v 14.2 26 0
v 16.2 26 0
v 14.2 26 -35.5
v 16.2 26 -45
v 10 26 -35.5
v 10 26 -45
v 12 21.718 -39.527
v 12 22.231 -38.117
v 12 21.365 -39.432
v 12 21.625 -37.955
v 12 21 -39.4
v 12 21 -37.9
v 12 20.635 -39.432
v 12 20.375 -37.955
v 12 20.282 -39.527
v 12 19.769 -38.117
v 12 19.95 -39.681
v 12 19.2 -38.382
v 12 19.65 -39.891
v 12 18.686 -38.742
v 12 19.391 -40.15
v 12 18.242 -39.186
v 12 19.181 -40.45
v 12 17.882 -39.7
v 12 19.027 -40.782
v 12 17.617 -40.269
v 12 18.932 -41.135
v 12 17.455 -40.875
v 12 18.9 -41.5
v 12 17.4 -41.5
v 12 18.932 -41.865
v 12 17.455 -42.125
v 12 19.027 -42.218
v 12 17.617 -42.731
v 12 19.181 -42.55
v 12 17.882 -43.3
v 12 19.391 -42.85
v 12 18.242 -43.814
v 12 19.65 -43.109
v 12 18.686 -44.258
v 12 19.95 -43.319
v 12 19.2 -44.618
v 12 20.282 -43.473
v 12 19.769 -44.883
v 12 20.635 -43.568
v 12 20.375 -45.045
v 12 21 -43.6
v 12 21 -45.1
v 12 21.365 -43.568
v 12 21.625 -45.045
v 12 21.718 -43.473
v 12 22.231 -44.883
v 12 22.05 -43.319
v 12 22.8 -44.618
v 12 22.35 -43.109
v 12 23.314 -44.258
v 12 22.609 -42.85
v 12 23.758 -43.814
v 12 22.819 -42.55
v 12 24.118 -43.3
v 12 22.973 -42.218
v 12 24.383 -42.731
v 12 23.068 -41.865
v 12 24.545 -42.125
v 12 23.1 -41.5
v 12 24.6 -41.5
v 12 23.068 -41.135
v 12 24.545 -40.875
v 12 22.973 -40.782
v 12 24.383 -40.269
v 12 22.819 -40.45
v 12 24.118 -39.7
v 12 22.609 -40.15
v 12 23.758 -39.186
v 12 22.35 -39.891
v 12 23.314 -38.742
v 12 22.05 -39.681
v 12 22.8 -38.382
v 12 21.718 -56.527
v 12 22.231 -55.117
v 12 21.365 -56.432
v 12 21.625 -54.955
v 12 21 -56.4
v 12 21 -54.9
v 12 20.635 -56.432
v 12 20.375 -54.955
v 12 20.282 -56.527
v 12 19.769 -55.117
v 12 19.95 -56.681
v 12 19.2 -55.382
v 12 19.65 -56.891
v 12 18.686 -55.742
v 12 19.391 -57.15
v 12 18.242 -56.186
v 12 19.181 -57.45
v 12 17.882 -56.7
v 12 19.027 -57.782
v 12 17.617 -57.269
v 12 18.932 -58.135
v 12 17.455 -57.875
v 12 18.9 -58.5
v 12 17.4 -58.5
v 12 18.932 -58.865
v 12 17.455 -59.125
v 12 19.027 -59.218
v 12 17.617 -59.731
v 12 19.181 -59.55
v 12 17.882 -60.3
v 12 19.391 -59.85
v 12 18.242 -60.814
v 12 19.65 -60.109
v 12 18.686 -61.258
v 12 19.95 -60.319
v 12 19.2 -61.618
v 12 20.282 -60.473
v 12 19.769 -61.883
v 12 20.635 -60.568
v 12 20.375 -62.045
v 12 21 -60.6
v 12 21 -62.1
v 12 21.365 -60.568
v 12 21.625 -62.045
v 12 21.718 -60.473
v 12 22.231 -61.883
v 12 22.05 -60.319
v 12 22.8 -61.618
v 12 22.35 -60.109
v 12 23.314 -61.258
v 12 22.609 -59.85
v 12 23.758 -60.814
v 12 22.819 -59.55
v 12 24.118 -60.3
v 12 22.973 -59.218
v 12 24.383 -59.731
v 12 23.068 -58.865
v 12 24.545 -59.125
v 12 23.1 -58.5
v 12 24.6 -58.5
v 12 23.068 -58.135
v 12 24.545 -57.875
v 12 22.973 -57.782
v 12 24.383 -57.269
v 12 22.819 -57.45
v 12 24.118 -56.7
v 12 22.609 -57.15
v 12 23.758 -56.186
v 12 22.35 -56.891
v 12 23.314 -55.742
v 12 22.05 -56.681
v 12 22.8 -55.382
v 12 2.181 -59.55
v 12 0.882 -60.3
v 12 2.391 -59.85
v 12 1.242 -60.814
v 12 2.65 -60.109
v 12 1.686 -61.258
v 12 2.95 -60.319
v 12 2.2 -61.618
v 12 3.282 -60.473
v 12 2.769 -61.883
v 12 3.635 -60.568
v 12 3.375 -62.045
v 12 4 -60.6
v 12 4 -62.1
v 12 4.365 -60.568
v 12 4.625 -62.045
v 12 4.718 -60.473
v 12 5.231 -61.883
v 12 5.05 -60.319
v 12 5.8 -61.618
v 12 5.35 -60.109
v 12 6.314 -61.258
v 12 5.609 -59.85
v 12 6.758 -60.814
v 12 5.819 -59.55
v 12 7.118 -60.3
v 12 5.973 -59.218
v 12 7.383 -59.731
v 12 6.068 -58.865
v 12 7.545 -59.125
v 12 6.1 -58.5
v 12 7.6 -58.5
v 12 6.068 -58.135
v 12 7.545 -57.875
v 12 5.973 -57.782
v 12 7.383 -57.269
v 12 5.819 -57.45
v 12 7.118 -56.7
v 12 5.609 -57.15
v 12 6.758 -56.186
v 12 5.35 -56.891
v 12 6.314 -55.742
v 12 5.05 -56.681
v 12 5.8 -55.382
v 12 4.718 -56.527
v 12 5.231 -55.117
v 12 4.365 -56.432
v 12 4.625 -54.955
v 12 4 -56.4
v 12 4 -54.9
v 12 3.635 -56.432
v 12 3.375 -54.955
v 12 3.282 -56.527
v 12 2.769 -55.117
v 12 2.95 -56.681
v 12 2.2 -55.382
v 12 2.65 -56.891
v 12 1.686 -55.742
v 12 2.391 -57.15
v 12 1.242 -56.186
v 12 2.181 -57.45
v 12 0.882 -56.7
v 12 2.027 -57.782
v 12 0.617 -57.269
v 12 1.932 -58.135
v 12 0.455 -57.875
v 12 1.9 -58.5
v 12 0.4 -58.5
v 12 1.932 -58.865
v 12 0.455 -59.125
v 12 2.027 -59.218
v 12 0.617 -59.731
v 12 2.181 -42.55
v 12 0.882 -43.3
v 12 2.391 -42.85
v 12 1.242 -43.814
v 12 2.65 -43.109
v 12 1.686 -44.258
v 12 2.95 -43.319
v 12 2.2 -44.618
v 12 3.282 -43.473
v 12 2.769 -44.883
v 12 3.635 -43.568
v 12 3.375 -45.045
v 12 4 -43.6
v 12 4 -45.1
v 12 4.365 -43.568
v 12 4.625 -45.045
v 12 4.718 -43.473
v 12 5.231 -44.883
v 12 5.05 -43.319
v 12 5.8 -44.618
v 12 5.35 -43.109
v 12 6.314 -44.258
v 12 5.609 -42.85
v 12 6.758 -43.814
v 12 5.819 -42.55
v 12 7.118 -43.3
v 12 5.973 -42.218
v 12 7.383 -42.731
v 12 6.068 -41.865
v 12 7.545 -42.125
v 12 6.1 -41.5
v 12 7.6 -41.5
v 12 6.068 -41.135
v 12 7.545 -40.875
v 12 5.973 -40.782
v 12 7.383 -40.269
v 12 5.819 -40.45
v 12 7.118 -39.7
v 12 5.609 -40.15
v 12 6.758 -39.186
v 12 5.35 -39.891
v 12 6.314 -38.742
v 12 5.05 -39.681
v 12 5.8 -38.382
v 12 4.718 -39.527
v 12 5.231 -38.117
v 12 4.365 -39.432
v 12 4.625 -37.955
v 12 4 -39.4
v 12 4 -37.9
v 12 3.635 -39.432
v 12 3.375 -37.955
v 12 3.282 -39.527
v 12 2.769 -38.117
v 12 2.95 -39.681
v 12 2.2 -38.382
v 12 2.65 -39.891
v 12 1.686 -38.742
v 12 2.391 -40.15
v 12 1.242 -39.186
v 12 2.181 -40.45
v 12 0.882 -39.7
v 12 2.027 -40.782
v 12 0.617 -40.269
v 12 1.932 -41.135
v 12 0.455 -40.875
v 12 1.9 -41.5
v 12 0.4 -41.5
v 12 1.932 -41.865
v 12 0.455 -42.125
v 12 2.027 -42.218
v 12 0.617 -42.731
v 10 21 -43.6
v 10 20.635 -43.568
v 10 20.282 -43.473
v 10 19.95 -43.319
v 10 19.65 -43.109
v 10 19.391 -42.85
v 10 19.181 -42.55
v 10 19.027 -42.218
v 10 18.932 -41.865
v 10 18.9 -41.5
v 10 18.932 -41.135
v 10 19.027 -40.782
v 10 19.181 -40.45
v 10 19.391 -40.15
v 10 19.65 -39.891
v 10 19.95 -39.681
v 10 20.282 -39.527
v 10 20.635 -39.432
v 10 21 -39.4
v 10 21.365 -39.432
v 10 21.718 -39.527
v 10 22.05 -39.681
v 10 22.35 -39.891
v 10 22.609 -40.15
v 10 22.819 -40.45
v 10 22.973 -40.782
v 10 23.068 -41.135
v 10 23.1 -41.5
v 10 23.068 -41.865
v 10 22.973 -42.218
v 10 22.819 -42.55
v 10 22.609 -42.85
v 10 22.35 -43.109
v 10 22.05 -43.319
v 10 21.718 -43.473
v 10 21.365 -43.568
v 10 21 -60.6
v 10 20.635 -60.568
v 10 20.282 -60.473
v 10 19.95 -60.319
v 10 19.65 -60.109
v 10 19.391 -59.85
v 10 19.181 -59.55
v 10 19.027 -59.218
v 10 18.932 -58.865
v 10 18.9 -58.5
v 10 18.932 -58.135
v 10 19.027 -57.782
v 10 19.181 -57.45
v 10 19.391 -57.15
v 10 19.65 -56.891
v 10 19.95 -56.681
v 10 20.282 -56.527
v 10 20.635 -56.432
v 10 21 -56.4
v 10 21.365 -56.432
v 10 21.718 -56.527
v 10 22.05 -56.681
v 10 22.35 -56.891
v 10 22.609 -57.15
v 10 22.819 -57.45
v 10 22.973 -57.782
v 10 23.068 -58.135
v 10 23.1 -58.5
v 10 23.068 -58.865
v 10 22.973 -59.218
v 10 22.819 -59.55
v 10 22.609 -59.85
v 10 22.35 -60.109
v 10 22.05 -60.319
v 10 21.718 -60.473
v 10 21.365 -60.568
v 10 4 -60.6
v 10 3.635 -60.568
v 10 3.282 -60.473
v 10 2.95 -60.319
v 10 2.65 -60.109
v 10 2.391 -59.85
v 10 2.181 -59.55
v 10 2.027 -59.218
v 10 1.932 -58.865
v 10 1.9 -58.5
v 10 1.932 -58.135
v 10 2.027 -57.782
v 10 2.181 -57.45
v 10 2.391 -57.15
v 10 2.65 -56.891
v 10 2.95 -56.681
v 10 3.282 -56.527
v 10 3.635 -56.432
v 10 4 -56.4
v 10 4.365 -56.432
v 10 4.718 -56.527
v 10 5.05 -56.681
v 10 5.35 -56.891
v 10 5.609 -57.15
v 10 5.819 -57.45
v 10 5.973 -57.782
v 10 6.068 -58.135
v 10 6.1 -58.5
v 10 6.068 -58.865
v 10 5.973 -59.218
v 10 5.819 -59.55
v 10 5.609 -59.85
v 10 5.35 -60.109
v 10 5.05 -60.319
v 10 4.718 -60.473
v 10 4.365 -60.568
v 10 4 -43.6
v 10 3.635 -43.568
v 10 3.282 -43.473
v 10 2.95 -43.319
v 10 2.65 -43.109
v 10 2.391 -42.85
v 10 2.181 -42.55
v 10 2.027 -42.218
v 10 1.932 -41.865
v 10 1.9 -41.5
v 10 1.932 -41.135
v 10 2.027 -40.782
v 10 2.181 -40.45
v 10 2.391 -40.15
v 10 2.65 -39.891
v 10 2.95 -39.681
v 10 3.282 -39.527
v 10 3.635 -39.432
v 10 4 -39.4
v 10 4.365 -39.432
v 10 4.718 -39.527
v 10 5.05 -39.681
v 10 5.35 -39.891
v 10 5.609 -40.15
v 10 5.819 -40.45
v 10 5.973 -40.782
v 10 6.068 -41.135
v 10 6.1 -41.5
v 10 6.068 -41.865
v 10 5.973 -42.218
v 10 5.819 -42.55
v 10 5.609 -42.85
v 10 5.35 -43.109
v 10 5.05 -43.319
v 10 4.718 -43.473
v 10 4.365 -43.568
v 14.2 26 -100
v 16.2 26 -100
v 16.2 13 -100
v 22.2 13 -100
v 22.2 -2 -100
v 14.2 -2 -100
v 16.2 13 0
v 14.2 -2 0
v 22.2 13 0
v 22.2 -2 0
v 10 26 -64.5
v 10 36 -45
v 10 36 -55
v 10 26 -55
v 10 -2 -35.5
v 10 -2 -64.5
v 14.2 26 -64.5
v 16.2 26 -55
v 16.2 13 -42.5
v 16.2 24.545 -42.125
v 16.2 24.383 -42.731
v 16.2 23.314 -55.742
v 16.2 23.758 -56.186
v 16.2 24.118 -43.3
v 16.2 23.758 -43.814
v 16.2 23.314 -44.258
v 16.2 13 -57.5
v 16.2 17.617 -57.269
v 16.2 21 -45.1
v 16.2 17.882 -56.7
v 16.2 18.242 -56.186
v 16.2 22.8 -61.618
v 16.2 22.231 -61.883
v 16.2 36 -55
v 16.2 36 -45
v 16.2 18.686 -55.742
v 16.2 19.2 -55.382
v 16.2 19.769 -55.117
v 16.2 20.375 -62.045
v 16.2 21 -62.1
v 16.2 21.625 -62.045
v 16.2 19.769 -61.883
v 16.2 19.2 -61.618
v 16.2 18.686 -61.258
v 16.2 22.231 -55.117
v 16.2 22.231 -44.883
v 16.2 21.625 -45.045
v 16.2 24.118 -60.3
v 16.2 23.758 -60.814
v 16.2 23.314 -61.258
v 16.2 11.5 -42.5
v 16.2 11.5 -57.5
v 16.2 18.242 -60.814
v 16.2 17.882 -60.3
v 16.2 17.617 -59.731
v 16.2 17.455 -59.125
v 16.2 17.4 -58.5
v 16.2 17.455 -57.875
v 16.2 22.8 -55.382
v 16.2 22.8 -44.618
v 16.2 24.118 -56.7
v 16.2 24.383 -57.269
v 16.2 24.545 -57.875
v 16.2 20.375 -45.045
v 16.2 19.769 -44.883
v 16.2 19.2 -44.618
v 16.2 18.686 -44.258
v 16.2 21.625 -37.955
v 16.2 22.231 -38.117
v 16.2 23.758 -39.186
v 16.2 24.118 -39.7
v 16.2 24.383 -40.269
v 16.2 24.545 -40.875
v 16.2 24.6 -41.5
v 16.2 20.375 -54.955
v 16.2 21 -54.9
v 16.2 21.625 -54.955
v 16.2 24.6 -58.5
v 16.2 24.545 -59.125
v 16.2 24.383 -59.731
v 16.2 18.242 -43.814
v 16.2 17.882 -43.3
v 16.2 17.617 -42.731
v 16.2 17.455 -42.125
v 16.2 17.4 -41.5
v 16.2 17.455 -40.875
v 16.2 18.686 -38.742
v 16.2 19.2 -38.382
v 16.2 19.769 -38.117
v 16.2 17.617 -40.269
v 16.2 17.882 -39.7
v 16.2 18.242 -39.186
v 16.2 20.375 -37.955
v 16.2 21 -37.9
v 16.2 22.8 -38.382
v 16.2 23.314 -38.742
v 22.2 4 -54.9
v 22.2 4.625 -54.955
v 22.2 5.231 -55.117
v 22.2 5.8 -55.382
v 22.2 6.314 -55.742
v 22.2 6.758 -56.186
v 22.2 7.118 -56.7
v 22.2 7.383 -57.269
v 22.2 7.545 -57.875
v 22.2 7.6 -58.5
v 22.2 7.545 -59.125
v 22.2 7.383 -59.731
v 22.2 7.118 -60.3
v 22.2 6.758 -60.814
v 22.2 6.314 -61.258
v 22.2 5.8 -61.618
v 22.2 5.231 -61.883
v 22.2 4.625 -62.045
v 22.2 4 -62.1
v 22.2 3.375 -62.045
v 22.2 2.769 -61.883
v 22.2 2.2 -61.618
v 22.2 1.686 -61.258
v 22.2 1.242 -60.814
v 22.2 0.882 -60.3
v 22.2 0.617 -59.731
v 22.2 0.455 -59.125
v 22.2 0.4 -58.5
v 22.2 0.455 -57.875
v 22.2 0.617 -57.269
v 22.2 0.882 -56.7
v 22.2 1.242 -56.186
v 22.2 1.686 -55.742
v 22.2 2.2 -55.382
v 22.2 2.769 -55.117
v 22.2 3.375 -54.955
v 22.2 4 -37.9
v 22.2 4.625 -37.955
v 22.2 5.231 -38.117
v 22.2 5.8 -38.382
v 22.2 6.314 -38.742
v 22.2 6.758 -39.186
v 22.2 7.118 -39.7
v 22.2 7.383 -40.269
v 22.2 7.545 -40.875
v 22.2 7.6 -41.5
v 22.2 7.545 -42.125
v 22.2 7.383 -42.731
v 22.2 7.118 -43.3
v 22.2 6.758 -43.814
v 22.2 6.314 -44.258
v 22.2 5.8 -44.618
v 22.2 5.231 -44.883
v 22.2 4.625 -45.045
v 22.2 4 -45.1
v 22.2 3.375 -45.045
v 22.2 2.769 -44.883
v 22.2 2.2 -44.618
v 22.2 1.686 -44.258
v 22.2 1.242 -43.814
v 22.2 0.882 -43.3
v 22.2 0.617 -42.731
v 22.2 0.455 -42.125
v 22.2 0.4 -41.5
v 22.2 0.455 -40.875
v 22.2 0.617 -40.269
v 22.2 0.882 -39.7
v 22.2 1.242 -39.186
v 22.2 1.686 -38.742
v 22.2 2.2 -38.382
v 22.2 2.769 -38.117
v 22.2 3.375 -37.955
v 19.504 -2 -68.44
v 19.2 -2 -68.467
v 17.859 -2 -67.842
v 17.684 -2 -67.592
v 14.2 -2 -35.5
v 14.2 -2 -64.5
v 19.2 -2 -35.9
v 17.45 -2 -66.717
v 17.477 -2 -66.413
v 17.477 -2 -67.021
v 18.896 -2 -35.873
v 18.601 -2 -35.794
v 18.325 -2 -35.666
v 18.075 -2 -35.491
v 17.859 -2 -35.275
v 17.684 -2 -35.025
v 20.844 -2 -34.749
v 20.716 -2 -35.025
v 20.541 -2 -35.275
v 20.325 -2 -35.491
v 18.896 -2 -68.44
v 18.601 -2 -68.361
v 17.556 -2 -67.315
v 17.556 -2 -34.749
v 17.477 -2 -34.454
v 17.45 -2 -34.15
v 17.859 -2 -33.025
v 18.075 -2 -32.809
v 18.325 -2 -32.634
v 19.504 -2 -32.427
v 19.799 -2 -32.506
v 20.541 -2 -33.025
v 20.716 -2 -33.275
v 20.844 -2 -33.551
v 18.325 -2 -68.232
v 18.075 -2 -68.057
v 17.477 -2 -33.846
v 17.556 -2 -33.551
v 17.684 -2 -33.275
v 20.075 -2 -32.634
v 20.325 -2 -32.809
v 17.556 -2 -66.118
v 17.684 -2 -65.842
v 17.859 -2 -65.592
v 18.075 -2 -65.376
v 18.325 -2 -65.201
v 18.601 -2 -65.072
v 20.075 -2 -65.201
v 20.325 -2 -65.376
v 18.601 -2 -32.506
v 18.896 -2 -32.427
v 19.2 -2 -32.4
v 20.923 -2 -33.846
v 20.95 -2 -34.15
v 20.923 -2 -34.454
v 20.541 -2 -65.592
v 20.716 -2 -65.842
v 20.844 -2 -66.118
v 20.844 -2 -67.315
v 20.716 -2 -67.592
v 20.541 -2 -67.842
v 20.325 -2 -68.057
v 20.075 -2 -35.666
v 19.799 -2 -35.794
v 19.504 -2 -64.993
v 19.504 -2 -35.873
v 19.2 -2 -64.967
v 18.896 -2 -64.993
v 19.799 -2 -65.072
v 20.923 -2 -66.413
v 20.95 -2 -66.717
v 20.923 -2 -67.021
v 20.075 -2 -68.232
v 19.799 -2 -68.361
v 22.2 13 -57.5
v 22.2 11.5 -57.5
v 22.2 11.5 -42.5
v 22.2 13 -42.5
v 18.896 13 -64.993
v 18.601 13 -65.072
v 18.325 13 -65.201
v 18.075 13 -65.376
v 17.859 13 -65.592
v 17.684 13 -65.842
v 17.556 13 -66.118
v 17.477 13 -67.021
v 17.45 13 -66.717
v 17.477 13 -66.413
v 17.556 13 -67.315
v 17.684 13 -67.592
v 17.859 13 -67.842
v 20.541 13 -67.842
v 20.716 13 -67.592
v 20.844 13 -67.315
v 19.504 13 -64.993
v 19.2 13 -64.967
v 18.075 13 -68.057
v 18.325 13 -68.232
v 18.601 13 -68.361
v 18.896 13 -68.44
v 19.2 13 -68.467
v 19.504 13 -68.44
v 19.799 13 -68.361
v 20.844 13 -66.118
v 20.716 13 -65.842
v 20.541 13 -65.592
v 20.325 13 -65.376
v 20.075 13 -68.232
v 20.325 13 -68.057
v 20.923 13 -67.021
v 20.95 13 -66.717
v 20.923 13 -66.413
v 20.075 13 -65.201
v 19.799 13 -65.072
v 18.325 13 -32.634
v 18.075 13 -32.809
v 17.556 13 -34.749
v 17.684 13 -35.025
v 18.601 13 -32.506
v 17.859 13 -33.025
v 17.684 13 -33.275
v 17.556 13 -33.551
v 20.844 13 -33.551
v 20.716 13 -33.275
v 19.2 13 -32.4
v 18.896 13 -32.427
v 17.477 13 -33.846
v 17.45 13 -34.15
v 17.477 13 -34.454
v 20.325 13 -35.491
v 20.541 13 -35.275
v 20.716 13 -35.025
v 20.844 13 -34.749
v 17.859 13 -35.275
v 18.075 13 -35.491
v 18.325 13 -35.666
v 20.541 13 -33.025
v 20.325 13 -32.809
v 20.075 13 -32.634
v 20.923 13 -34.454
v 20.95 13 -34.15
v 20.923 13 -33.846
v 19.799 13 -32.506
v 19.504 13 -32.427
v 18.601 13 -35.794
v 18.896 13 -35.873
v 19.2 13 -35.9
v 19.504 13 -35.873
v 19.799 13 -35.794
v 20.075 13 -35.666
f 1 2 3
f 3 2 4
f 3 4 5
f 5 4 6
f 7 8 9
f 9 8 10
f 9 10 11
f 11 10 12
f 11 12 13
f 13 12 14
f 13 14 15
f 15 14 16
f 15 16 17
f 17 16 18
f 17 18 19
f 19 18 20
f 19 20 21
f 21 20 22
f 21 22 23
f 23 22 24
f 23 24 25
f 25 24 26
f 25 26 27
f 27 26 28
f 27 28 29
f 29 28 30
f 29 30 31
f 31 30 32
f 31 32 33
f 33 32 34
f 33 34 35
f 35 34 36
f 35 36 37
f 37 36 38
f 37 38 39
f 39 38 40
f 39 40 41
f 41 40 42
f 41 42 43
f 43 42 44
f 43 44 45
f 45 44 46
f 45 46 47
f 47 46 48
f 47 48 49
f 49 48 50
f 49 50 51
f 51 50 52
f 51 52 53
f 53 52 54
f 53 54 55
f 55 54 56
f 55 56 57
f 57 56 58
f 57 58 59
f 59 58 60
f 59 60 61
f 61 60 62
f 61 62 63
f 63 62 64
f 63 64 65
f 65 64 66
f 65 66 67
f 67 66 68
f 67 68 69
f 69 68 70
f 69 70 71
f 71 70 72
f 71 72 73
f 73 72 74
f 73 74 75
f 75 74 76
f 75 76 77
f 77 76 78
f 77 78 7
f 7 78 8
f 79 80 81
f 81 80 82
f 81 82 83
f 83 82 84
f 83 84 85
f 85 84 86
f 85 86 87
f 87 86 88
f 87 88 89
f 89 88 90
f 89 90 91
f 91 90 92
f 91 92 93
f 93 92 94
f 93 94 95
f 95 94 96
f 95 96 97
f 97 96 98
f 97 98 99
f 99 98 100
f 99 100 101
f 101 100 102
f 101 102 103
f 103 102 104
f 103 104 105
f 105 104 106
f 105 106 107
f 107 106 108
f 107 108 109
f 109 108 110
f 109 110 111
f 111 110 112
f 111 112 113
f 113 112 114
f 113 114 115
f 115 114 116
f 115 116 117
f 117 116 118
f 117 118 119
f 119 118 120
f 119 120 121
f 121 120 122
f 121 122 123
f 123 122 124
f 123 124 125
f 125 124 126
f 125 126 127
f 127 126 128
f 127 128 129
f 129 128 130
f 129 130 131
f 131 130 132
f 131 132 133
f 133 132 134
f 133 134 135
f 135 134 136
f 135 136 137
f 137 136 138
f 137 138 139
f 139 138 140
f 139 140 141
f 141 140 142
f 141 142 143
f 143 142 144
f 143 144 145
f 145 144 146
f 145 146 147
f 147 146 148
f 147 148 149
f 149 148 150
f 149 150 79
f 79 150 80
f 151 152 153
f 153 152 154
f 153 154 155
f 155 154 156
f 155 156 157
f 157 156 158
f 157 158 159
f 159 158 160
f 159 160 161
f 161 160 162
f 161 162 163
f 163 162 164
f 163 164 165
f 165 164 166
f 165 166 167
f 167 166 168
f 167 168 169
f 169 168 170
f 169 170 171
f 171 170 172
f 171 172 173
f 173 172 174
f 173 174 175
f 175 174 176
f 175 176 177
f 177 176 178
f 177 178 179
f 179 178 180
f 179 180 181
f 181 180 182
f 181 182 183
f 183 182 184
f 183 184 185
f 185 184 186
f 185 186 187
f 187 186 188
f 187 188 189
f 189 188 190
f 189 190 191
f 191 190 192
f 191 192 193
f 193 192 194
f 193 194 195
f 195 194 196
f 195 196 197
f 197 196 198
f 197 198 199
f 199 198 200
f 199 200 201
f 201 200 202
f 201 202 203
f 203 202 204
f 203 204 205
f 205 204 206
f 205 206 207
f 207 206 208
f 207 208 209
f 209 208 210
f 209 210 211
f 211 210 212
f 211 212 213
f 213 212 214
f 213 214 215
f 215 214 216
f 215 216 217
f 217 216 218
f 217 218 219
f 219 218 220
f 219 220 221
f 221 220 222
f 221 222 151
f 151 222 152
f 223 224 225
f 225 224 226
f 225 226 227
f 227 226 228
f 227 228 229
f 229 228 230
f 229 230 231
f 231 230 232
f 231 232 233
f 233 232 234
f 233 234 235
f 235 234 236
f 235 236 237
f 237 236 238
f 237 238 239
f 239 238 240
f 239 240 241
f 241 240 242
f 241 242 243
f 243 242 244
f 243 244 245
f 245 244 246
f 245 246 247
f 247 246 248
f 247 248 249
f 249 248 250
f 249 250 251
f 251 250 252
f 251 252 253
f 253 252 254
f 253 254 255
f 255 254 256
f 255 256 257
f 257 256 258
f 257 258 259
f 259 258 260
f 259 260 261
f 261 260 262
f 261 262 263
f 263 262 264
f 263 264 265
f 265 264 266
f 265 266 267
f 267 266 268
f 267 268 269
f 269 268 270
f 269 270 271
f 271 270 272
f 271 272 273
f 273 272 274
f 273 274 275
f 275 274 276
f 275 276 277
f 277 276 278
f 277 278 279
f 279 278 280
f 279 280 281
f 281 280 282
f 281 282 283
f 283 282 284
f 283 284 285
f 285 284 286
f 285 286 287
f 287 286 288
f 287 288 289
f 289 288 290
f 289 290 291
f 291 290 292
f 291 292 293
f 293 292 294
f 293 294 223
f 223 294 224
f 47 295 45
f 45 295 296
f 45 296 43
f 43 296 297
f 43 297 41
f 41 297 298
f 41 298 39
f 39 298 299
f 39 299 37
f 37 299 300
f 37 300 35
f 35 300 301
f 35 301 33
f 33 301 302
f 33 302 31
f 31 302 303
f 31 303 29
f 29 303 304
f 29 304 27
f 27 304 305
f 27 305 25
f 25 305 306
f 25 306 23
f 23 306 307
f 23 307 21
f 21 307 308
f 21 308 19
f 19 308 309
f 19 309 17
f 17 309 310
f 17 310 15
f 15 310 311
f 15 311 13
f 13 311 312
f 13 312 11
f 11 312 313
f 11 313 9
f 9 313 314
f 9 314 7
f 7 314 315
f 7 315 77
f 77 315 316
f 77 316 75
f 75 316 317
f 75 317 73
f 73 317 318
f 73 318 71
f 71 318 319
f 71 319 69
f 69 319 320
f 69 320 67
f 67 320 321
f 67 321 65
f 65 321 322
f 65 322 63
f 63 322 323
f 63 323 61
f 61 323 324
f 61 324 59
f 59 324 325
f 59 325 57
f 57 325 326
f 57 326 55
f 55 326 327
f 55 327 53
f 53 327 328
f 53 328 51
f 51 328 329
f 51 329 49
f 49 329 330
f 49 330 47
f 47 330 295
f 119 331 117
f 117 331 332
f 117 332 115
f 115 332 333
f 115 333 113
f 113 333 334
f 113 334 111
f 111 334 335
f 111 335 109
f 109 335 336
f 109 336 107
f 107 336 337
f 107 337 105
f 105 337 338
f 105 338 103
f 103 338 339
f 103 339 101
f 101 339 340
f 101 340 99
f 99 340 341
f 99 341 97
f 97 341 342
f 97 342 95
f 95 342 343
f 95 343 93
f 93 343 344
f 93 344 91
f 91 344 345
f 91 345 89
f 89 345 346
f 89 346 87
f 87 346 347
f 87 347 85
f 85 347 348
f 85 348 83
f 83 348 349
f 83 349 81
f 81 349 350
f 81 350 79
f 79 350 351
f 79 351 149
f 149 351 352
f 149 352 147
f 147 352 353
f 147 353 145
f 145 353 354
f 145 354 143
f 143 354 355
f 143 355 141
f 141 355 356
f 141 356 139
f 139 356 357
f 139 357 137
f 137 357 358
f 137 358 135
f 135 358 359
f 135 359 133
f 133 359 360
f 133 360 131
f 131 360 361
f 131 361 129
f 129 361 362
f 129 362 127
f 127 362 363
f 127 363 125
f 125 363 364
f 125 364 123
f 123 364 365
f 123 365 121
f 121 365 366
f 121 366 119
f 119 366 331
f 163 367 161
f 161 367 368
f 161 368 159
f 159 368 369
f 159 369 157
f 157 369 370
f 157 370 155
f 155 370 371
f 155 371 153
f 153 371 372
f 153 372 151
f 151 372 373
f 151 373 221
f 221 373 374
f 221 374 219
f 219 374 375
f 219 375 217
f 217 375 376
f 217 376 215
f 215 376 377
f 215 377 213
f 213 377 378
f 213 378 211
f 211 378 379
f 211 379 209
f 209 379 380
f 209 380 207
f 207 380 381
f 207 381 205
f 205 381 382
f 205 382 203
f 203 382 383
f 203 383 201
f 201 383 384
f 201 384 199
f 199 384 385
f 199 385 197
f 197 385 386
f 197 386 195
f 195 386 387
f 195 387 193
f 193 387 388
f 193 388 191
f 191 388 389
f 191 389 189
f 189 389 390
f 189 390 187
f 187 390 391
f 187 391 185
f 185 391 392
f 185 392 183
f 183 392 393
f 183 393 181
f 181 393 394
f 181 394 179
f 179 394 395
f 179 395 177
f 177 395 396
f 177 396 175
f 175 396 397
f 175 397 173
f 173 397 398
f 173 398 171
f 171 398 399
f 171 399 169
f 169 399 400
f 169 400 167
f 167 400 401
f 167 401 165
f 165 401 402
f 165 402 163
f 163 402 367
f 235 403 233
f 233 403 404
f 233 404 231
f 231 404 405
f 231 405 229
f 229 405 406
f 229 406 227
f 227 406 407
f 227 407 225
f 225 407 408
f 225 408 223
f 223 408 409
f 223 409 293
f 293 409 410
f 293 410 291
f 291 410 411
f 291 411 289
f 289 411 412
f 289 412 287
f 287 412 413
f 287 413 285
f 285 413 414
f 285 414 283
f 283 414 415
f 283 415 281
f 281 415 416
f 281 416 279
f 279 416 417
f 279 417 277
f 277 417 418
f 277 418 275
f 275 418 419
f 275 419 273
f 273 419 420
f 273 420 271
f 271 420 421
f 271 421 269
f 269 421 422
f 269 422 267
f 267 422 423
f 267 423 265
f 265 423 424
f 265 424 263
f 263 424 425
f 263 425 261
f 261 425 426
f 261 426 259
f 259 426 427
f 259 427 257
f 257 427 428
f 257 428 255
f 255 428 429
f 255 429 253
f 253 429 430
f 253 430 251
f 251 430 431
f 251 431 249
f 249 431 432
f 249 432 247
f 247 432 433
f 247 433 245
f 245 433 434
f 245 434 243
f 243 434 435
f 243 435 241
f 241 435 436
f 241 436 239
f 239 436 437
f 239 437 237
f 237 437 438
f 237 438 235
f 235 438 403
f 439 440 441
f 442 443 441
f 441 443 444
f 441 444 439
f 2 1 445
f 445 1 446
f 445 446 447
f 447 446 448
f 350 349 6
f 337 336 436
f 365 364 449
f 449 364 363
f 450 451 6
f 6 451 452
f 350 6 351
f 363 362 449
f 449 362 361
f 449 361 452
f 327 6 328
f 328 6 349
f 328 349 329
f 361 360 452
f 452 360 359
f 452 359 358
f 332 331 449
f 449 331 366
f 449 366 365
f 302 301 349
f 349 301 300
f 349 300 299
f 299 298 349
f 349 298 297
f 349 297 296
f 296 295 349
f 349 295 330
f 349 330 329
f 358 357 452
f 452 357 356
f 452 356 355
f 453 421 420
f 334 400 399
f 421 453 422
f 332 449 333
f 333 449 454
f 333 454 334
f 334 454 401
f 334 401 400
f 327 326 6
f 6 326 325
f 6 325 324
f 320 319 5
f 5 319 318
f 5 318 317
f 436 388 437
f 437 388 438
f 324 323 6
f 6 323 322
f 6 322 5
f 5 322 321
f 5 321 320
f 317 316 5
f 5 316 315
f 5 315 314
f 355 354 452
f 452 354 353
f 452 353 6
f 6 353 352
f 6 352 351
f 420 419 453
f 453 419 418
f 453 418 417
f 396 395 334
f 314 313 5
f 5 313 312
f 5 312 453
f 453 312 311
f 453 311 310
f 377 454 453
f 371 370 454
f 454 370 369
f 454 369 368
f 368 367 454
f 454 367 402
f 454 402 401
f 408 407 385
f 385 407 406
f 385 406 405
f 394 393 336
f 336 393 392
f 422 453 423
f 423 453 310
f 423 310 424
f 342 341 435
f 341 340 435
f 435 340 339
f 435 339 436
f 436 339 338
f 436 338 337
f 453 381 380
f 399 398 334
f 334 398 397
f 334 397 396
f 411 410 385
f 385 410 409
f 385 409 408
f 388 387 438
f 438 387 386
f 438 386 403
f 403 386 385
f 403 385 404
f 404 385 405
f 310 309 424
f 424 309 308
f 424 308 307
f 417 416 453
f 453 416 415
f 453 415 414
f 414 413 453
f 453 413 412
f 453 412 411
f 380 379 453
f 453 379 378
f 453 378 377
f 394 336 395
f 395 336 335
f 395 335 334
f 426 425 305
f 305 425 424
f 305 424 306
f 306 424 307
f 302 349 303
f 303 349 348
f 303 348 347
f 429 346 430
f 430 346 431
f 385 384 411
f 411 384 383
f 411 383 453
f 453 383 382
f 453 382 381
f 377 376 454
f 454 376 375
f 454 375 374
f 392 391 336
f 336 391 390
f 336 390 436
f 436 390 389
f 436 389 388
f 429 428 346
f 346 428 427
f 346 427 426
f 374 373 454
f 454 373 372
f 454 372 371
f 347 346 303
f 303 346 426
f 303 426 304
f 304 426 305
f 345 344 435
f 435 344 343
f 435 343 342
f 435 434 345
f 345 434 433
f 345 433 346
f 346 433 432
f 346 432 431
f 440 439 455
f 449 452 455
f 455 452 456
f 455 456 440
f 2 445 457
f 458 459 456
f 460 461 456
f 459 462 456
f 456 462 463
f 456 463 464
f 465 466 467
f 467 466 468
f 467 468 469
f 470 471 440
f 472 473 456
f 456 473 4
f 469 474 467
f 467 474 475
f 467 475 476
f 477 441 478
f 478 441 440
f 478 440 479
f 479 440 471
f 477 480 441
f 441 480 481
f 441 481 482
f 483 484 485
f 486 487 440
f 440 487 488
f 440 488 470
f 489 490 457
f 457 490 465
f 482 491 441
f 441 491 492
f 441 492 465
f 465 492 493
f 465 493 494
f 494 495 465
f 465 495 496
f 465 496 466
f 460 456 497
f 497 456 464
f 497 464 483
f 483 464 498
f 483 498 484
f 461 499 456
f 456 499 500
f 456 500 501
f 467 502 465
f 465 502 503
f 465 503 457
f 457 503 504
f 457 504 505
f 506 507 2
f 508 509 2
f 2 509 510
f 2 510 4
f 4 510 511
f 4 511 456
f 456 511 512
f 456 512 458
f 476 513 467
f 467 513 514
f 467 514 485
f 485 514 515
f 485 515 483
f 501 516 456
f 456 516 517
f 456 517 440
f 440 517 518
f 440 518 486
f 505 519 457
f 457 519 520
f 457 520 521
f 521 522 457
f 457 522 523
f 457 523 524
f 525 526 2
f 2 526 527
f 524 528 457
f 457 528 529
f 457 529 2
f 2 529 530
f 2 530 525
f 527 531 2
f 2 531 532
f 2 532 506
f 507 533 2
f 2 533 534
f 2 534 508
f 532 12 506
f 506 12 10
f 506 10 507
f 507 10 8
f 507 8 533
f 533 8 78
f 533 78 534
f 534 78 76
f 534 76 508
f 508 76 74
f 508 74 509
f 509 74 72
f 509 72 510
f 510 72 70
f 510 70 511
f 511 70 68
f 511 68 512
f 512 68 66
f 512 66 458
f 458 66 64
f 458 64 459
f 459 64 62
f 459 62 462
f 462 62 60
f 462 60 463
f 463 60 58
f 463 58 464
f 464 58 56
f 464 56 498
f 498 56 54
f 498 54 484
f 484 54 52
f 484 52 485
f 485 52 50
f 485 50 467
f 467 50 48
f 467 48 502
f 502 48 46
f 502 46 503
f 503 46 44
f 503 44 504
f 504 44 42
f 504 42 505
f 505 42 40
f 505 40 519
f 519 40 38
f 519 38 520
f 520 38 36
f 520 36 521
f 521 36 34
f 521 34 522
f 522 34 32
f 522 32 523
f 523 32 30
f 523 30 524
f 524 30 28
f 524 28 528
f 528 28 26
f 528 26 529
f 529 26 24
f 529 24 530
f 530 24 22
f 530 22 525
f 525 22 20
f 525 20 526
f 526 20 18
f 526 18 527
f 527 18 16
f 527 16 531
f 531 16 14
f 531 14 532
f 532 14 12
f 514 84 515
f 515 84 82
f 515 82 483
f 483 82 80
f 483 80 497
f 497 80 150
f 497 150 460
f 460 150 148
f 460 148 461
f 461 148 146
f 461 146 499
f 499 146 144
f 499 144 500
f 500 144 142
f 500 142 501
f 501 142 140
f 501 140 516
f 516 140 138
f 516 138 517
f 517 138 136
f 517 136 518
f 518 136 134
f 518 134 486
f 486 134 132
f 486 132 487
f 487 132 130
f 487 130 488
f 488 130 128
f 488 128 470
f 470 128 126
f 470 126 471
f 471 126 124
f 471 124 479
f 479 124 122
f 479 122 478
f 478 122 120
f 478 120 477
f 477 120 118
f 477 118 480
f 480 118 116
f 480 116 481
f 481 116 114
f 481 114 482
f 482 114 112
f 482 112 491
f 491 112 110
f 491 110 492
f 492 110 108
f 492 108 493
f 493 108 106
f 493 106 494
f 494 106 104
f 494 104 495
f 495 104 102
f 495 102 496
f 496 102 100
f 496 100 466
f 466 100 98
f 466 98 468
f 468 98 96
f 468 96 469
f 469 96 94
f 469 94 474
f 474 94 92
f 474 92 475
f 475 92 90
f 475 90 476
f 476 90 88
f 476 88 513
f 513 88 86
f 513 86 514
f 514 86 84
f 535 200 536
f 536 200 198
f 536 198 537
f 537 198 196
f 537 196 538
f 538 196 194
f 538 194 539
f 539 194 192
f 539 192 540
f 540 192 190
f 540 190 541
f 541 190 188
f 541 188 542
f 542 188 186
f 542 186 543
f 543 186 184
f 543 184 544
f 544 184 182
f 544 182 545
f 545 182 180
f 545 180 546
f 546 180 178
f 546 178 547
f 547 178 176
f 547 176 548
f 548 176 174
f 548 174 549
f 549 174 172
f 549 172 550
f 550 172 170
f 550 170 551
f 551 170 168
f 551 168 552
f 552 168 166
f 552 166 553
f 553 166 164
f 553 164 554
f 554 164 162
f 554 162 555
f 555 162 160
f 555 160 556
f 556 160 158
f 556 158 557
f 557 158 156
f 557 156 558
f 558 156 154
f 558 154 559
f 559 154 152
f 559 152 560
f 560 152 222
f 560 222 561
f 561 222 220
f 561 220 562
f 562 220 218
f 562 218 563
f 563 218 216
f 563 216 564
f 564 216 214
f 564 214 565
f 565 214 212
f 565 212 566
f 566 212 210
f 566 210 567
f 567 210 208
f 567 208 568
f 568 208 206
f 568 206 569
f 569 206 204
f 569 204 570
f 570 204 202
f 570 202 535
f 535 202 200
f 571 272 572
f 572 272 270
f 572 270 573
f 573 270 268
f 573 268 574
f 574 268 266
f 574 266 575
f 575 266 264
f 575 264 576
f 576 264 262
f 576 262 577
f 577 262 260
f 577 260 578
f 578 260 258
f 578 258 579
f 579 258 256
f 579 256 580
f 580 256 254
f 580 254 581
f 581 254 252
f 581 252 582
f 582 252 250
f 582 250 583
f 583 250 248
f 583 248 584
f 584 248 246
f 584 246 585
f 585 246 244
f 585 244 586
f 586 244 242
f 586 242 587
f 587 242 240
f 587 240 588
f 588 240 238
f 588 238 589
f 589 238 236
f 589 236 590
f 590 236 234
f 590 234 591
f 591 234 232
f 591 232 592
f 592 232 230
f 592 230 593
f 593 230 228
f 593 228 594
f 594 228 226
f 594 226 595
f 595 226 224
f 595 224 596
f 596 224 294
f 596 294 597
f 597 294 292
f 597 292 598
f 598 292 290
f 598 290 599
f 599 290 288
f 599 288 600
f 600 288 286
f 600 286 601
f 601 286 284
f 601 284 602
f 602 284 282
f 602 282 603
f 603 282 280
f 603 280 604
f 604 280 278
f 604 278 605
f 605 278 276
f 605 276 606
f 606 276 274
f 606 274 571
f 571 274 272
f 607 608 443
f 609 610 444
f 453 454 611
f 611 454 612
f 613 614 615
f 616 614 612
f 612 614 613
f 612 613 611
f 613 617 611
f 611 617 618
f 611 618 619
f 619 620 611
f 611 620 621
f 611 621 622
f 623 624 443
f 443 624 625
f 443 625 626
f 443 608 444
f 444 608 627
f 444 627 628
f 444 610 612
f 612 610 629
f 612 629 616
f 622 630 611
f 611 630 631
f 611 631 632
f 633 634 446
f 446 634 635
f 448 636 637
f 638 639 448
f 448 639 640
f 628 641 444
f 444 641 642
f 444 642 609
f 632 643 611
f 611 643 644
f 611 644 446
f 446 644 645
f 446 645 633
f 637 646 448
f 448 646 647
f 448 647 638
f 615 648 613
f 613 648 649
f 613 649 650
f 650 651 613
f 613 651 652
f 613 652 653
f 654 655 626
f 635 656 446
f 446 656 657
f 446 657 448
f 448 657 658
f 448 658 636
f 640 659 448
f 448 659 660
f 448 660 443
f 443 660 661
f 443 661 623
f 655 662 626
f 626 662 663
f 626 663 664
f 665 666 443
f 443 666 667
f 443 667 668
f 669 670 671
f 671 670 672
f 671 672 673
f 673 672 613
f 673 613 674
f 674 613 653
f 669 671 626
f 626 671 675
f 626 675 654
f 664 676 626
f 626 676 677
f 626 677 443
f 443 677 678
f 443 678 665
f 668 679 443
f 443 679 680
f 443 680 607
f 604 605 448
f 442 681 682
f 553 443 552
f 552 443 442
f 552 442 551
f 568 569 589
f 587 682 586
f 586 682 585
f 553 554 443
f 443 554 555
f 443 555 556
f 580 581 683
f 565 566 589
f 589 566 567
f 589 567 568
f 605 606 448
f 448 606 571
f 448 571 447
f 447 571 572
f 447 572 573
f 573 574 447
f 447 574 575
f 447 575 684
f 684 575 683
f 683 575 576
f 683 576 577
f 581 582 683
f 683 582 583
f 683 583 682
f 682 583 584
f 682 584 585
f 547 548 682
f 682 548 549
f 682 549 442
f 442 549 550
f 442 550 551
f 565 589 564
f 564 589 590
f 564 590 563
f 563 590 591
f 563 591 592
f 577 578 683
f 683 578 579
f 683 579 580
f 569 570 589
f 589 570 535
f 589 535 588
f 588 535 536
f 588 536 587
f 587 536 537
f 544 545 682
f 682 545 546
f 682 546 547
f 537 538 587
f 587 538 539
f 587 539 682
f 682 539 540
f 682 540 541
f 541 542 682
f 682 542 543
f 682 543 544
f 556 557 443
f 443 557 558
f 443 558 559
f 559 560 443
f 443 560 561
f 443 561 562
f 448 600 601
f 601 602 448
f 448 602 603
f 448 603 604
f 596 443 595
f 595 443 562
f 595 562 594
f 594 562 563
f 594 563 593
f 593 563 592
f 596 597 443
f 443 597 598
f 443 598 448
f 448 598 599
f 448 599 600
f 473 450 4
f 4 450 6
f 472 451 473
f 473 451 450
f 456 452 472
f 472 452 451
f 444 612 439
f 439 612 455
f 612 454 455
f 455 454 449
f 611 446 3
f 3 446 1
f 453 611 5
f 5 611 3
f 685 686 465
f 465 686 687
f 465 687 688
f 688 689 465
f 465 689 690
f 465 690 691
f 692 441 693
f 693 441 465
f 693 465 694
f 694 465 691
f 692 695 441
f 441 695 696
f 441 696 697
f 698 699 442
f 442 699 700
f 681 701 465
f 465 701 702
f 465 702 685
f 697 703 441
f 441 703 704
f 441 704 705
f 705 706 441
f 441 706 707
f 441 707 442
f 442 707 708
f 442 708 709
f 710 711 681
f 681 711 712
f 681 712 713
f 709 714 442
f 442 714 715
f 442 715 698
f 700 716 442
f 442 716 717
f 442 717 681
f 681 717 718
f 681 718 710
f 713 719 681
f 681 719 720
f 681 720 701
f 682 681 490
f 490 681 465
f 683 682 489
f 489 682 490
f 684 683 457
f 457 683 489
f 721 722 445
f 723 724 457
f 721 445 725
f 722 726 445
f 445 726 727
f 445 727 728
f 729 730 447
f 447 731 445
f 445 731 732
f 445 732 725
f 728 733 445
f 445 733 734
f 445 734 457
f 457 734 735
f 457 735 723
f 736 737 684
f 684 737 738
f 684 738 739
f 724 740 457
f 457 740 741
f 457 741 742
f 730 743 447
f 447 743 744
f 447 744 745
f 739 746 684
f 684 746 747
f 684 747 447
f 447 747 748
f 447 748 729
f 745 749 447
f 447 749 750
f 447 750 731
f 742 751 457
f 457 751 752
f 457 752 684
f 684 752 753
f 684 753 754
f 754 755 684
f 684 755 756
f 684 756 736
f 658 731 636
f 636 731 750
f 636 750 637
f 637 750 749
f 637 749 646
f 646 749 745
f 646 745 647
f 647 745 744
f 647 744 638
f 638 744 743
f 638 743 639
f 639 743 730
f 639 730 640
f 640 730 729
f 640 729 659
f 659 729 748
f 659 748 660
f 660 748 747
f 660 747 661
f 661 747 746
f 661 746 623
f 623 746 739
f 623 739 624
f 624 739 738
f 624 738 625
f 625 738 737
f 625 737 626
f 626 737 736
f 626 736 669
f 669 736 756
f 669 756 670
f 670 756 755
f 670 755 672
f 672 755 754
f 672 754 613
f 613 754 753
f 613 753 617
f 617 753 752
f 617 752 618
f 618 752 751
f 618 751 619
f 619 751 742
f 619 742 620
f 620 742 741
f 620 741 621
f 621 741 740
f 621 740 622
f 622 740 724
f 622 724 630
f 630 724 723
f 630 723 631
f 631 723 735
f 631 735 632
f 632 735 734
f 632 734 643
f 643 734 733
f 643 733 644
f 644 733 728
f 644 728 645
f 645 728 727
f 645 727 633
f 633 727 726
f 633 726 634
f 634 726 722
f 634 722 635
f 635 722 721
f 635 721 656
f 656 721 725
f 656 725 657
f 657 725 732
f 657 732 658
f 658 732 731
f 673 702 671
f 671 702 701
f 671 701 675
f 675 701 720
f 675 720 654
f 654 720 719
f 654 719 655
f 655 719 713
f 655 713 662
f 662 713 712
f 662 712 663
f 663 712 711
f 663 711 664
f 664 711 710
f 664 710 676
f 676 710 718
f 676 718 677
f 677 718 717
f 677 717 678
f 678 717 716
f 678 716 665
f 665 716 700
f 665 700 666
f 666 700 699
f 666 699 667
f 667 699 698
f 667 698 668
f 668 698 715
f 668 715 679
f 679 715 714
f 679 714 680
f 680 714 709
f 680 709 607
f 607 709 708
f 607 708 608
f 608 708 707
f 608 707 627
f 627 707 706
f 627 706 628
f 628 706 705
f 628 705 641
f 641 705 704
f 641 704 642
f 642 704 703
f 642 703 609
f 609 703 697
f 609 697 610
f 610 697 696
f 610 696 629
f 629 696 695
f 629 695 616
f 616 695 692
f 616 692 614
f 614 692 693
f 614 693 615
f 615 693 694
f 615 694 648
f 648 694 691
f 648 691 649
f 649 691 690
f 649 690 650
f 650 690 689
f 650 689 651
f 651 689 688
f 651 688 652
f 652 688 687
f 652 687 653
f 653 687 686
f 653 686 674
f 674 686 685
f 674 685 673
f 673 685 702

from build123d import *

# Parameters (mm, degrees)
SKETCH1_W               = 100
SKETCH1_H               = 26
BOSS_EXTRUDE1_DEPTH     = 2
BOSS_EXTRUDE2_DEPTH     = 100
SKETCH3_W               = 25
SKETCH3_H               = 28
BOSS_EXTRUDE3_DEPTH     = 4
SKETCH4_R               = 2.1
CUT_EXTRUDE1_DEPTH      = 106.39449701
SKETCH5_W               = 120
SKETCH5_H               = 46
SKETCH5_W_2             = 100
SKETCH5_H_2             = 26
CUT_EXTRUDE2_DEPTH      = 105.537074763
CUT_EXTRUDE2_DEPTH_BACK = 105.537074763
SKETCH6_W               = 100
SKETCH6_H               = 26
SKETCH6_R               = 3.6
BOSS_EXTRUDE4_DEPTH     = 4.2
SKETCH8_W               = 100
SKETCH8_H               = 4
BOSS_EXTRUDE5_DEPTH     = 6
SKETCH9_W               = 100
SKETCH9_H               = 4
BOSS_EXTRUDE6_DEPTH     = 10.2
SKETCH10_W              = 4
SKETCH10_H              = 37.5
CUT_EXTRUDE3_DEPTH      = 106.682732743
SKETCH11_W              = 4
SKETCH11_H              = 25
CUT_EXTRUDE4_DEPTH      = 107.737247482
SKETCH13_W              = 10
SKETCH13_H              = 10
BOSS_EXTRUDE7_DEPTH     = 6.2
SKETCH14_W              = 4.2
SKETCH14_H              = 35.5
CUT_EXTRUDE5_DEPTH      = 107.737247482
SKETCH15_R              = 3.6
BOSS_EXTRUDE8_DEPTH     = 6
SKETCH17_R              = 1.75
CUT_EXTRUDE7_DEPTH      = 105.984951303
MOVE_FACE2_BY           = 2


with BuildPart() as part:
    # Sketch1 → Boss-Extrude1 (new body)
    with BuildSketch(Plane(origin=(0, 0, 0), x_dir=(0, 0, -1), z_dir=(1, 0, 0))):
        with Locations((50, 13)):
            Rectangle(SKETCH1_W, SKETCH1_H)
    extrude(amount=BOSS_EXTRUDE1_DEPTH)

    # Sketch2 → Boss-Extrude2 (add)
    with BuildSketch(Plane.XY):
        Polygon((2, 26), (2, 28), (-12, 28), (-12, 24), (-10, 24), (-10, 26), align=None)
    extrude(amount=-BOSS_EXTRUDE2_DEPTH)

    # Sketch3 → Boss-Extrude3 (add)
    with BuildSketch(Plane(origin=(2, 0, 0), x_dir=(0, 0, -1), z_dir=(1, 0, 0))):
        with Locations((50, 14)):
            Rectangle(SKETCH3_W, SKETCH3_H)
    extrude(amount=BOSS_EXTRUDE3_DEPTH)

    # Sketch4 → Cut-Extrude1 (cut, through all)
    with BuildSketch(Plane(origin=(6, 0, 0), x_dir=(0, 0, -1), z_dir=(1, 0, 0))):
        with Locations((41.5, 21)):
            Circle(SKETCH4_R)
        with Locations((58.5, 21)):
            Circle(SKETCH4_R)
        with Locations((58.5, 4)):
            Circle(SKETCH4_R)
        with Locations((41.5, 4)):
            Circle(SKETCH4_R)
    extrude(amount=-CUT_EXTRUDE1_DEPTH, mode=Mode.SUBTRACT)


with BuildPart() as body_2:
    # Mirror1: mirrored copy
    add(part.part.mirror(Plane(origin=(6, 0, 0), x_dir=(0, 0, 1), z_dir=(1, 0, 0))))

    # Sketch5 → Cut-Extrude2 (cut, two sides)
    with BuildSketch(Plane(origin=(12, 0, 0), x_dir=(0, 0, -1), z_dir=(1, 0, 0))) as cut_extrude2_sk:
        with Locations((50, 13)):
            Rectangle(SKETCH5_W, SKETCH5_H)
        with Locations((50, 13)):
            Rectangle(SKETCH5_W_2, SKETCH5_H_2, mode=Mode.SUBTRACT)
    extrude(amount=CUT_EXTRUDE2_DEPTH, mode=Mode.SUBTRACT)
    extrude(cut_extrude2_sk.sketch, amount=-CUT_EXTRUDE2_DEPTH_BACK, mode=Mode.SUBTRACT)


with BuildPart() as body_2_2:
    # of the pieces the cut leaves, the one that is kept (cut_extrude2_keep)
    add(body_2.part.solids().sort_by_distance((12, 0, 0))[0])

    # Sketch6 → Boss-Extrude4 (add)
    with BuildSketch(Plane(origin=(12, 0, 0), x_dir=(0, 0, -1), z_dir=(1, 0, 0))):
        with Locations((50, 13)):
            Rectangle(SKETCH6_W, SKETCH6_H)
        with Locations((41.5, 21)):
            Circle(SKETCH6_R, mode=Mode.SUBTRACT)
        with Locations((58.5, 21)):
            Circle(SKETCH6_R, mode=Mode.SUBTRACT)
        with Locations((58.5, 4)):
            Circle(SKETCH6_R, mode=Mode.SUBTRACT)
        with Locations((41.5, 4)):
            Circle(SKETCH6_R, mode=Mode.SUBTRACT)
    extrude(amount=BOSS_EXTRUDE4_DEPTH)



with BuildPart() as body_2_3:
    # Sketch8 → Boss-Extrude5 (new body)
    with BuildSketch(Plane(origin=(16.2, 0, 0), x_dir=(0, 0, -1), z_dir=(1, 0, 0))):
        with Locations((50, -2)):
            Rectangle(SKETCH8_W, SKETCH8_H)
    extrude(amount=BOSS_EXTRUDE5_DEPTH)


with BuildPart() as body_2_2_1:
    add(body_2_2.part)

    add(body_2_3.part)  # Boss-Extrude6 merges body 2 3
    # Sketch9 → Boss-Extrude6 (add)
    with BuildSketch(Plane.ZY.offset(-16.2)):
        with Locations((-50, -2)):
            Rectangle(SKETCH9_W, SKETCH9_H)
    extrude(amount=BOSS_EXTRUDE6_DEPTH)

    # Sketch10 → Cut-Extrude3 (cut, through all)
    with BuildSketch(Plane(origin=(0, 0, 0), x_dir=(1, 0, 0), z_dir=(0, 1, 0))):
        with Locations((8, 81.25)):
            Rectangle(SKETCH10_W, SKETCH10_H)
        with Locations((8, 18.75)):
            Rectangle(SKETCH10_W, SKETCH10_H)
    extrude(amount=-CUT_EXTRUDE3_DEPTH, mode=Mode.SUBTRACT)

    # Sketch11 → Cut-Extrude4 (cut, through all)
    with BuildSketch(Plane(origin=(0, 26, 0), x_dir=(1, 0, 0), z_dir=(0, 1, 0))):
        with Locations((8, 50)):
            Rectangle(SKETCH11_W, SKETCH11_H)
    extrude(amount=-CUT_EXTRUDE4_DEPTH, mode=Mode.SUBTRACT)

    # Sketch13 → Boss-Extrude7 (add)
    with BuildSketch(Plane.ZY.offset(-10)):
        with Locations((-50, 31)):
            Rectangle(SKETCH13_W, SKETCH13_H)
    extrude(amount=-BOSS_EXTRUDE7_DEPTH)

    # Sketch14 → Cut-Extrude5 (cut, through all)
    with BuildSketch(Plane(origin=(0, 26, 0), x_dir=(1, 0, 0), z_dir=(0, 1, 0))):
        with Locations((12.1, 17.75)):
            Rectangle(SKETCH14_W, SKETCH14_H)
        with Locations((12.1, 82.25)):
            Rectangle(SKETCH14_W, SKETCH14_H)
    extrude(amount=-CUT_EXTRUDE5_DEPTH, mode=Mode.SUBTRACT)

    # Sketch15 → Boss-Extrude8 (add)
    with BuildSketch(Plane(origin=(22.2, 0, 0), x_dir=(0, 0, -1), z_dir=(1, 0, 0))):
        Polygon((0, 0), (100, 0), (100, 13), (57.5, 13), (57.5, 11.5), (42.5, 11.5), (42.5, 13), (0, 13), align=None)
        with Locations((41.5, 4)):
            Circle(SKETCH15_R, mode=Mode.SUBTRACT)
        with Locations((58.5, 4)):
            Circle(SKETCH15_R, mode=Mode.SUBTRACT)
    extrude(amount=-BOSS_EXTRUDE8_DEPTH)

    # Sketch17 → Cut-Extrude7 (cut, through all)
    with BuildSketch(Plane(origin=(0, 13, 0), x_dir=(1, 0, 0), z_dir=(0, 1, 0))):
        with Locations(Location((19.2, 34.15, 0), (0, 0, 270))):
            Circle(SKETCH17_R)
        with Locations(Location((19.2, 66.71679058, 0), (0, 0, 270))):
            Circle(SKETCH17_R)
    extrude(amount=-CUT_EXTRUDE7_DEPTH, mode=Mode.SUBTRACT)

    # Move Face2: a face moved inward by 2.0
    extrude(body_2_2_1.faces().sort_by_distance((17.355486439, -4, -49.990760145))[0], amount=MOVE_FACE2_BY, dir=(0, 1, 0), mode=Mode.SUBTRACT)


solid = body_2_2_1.part
